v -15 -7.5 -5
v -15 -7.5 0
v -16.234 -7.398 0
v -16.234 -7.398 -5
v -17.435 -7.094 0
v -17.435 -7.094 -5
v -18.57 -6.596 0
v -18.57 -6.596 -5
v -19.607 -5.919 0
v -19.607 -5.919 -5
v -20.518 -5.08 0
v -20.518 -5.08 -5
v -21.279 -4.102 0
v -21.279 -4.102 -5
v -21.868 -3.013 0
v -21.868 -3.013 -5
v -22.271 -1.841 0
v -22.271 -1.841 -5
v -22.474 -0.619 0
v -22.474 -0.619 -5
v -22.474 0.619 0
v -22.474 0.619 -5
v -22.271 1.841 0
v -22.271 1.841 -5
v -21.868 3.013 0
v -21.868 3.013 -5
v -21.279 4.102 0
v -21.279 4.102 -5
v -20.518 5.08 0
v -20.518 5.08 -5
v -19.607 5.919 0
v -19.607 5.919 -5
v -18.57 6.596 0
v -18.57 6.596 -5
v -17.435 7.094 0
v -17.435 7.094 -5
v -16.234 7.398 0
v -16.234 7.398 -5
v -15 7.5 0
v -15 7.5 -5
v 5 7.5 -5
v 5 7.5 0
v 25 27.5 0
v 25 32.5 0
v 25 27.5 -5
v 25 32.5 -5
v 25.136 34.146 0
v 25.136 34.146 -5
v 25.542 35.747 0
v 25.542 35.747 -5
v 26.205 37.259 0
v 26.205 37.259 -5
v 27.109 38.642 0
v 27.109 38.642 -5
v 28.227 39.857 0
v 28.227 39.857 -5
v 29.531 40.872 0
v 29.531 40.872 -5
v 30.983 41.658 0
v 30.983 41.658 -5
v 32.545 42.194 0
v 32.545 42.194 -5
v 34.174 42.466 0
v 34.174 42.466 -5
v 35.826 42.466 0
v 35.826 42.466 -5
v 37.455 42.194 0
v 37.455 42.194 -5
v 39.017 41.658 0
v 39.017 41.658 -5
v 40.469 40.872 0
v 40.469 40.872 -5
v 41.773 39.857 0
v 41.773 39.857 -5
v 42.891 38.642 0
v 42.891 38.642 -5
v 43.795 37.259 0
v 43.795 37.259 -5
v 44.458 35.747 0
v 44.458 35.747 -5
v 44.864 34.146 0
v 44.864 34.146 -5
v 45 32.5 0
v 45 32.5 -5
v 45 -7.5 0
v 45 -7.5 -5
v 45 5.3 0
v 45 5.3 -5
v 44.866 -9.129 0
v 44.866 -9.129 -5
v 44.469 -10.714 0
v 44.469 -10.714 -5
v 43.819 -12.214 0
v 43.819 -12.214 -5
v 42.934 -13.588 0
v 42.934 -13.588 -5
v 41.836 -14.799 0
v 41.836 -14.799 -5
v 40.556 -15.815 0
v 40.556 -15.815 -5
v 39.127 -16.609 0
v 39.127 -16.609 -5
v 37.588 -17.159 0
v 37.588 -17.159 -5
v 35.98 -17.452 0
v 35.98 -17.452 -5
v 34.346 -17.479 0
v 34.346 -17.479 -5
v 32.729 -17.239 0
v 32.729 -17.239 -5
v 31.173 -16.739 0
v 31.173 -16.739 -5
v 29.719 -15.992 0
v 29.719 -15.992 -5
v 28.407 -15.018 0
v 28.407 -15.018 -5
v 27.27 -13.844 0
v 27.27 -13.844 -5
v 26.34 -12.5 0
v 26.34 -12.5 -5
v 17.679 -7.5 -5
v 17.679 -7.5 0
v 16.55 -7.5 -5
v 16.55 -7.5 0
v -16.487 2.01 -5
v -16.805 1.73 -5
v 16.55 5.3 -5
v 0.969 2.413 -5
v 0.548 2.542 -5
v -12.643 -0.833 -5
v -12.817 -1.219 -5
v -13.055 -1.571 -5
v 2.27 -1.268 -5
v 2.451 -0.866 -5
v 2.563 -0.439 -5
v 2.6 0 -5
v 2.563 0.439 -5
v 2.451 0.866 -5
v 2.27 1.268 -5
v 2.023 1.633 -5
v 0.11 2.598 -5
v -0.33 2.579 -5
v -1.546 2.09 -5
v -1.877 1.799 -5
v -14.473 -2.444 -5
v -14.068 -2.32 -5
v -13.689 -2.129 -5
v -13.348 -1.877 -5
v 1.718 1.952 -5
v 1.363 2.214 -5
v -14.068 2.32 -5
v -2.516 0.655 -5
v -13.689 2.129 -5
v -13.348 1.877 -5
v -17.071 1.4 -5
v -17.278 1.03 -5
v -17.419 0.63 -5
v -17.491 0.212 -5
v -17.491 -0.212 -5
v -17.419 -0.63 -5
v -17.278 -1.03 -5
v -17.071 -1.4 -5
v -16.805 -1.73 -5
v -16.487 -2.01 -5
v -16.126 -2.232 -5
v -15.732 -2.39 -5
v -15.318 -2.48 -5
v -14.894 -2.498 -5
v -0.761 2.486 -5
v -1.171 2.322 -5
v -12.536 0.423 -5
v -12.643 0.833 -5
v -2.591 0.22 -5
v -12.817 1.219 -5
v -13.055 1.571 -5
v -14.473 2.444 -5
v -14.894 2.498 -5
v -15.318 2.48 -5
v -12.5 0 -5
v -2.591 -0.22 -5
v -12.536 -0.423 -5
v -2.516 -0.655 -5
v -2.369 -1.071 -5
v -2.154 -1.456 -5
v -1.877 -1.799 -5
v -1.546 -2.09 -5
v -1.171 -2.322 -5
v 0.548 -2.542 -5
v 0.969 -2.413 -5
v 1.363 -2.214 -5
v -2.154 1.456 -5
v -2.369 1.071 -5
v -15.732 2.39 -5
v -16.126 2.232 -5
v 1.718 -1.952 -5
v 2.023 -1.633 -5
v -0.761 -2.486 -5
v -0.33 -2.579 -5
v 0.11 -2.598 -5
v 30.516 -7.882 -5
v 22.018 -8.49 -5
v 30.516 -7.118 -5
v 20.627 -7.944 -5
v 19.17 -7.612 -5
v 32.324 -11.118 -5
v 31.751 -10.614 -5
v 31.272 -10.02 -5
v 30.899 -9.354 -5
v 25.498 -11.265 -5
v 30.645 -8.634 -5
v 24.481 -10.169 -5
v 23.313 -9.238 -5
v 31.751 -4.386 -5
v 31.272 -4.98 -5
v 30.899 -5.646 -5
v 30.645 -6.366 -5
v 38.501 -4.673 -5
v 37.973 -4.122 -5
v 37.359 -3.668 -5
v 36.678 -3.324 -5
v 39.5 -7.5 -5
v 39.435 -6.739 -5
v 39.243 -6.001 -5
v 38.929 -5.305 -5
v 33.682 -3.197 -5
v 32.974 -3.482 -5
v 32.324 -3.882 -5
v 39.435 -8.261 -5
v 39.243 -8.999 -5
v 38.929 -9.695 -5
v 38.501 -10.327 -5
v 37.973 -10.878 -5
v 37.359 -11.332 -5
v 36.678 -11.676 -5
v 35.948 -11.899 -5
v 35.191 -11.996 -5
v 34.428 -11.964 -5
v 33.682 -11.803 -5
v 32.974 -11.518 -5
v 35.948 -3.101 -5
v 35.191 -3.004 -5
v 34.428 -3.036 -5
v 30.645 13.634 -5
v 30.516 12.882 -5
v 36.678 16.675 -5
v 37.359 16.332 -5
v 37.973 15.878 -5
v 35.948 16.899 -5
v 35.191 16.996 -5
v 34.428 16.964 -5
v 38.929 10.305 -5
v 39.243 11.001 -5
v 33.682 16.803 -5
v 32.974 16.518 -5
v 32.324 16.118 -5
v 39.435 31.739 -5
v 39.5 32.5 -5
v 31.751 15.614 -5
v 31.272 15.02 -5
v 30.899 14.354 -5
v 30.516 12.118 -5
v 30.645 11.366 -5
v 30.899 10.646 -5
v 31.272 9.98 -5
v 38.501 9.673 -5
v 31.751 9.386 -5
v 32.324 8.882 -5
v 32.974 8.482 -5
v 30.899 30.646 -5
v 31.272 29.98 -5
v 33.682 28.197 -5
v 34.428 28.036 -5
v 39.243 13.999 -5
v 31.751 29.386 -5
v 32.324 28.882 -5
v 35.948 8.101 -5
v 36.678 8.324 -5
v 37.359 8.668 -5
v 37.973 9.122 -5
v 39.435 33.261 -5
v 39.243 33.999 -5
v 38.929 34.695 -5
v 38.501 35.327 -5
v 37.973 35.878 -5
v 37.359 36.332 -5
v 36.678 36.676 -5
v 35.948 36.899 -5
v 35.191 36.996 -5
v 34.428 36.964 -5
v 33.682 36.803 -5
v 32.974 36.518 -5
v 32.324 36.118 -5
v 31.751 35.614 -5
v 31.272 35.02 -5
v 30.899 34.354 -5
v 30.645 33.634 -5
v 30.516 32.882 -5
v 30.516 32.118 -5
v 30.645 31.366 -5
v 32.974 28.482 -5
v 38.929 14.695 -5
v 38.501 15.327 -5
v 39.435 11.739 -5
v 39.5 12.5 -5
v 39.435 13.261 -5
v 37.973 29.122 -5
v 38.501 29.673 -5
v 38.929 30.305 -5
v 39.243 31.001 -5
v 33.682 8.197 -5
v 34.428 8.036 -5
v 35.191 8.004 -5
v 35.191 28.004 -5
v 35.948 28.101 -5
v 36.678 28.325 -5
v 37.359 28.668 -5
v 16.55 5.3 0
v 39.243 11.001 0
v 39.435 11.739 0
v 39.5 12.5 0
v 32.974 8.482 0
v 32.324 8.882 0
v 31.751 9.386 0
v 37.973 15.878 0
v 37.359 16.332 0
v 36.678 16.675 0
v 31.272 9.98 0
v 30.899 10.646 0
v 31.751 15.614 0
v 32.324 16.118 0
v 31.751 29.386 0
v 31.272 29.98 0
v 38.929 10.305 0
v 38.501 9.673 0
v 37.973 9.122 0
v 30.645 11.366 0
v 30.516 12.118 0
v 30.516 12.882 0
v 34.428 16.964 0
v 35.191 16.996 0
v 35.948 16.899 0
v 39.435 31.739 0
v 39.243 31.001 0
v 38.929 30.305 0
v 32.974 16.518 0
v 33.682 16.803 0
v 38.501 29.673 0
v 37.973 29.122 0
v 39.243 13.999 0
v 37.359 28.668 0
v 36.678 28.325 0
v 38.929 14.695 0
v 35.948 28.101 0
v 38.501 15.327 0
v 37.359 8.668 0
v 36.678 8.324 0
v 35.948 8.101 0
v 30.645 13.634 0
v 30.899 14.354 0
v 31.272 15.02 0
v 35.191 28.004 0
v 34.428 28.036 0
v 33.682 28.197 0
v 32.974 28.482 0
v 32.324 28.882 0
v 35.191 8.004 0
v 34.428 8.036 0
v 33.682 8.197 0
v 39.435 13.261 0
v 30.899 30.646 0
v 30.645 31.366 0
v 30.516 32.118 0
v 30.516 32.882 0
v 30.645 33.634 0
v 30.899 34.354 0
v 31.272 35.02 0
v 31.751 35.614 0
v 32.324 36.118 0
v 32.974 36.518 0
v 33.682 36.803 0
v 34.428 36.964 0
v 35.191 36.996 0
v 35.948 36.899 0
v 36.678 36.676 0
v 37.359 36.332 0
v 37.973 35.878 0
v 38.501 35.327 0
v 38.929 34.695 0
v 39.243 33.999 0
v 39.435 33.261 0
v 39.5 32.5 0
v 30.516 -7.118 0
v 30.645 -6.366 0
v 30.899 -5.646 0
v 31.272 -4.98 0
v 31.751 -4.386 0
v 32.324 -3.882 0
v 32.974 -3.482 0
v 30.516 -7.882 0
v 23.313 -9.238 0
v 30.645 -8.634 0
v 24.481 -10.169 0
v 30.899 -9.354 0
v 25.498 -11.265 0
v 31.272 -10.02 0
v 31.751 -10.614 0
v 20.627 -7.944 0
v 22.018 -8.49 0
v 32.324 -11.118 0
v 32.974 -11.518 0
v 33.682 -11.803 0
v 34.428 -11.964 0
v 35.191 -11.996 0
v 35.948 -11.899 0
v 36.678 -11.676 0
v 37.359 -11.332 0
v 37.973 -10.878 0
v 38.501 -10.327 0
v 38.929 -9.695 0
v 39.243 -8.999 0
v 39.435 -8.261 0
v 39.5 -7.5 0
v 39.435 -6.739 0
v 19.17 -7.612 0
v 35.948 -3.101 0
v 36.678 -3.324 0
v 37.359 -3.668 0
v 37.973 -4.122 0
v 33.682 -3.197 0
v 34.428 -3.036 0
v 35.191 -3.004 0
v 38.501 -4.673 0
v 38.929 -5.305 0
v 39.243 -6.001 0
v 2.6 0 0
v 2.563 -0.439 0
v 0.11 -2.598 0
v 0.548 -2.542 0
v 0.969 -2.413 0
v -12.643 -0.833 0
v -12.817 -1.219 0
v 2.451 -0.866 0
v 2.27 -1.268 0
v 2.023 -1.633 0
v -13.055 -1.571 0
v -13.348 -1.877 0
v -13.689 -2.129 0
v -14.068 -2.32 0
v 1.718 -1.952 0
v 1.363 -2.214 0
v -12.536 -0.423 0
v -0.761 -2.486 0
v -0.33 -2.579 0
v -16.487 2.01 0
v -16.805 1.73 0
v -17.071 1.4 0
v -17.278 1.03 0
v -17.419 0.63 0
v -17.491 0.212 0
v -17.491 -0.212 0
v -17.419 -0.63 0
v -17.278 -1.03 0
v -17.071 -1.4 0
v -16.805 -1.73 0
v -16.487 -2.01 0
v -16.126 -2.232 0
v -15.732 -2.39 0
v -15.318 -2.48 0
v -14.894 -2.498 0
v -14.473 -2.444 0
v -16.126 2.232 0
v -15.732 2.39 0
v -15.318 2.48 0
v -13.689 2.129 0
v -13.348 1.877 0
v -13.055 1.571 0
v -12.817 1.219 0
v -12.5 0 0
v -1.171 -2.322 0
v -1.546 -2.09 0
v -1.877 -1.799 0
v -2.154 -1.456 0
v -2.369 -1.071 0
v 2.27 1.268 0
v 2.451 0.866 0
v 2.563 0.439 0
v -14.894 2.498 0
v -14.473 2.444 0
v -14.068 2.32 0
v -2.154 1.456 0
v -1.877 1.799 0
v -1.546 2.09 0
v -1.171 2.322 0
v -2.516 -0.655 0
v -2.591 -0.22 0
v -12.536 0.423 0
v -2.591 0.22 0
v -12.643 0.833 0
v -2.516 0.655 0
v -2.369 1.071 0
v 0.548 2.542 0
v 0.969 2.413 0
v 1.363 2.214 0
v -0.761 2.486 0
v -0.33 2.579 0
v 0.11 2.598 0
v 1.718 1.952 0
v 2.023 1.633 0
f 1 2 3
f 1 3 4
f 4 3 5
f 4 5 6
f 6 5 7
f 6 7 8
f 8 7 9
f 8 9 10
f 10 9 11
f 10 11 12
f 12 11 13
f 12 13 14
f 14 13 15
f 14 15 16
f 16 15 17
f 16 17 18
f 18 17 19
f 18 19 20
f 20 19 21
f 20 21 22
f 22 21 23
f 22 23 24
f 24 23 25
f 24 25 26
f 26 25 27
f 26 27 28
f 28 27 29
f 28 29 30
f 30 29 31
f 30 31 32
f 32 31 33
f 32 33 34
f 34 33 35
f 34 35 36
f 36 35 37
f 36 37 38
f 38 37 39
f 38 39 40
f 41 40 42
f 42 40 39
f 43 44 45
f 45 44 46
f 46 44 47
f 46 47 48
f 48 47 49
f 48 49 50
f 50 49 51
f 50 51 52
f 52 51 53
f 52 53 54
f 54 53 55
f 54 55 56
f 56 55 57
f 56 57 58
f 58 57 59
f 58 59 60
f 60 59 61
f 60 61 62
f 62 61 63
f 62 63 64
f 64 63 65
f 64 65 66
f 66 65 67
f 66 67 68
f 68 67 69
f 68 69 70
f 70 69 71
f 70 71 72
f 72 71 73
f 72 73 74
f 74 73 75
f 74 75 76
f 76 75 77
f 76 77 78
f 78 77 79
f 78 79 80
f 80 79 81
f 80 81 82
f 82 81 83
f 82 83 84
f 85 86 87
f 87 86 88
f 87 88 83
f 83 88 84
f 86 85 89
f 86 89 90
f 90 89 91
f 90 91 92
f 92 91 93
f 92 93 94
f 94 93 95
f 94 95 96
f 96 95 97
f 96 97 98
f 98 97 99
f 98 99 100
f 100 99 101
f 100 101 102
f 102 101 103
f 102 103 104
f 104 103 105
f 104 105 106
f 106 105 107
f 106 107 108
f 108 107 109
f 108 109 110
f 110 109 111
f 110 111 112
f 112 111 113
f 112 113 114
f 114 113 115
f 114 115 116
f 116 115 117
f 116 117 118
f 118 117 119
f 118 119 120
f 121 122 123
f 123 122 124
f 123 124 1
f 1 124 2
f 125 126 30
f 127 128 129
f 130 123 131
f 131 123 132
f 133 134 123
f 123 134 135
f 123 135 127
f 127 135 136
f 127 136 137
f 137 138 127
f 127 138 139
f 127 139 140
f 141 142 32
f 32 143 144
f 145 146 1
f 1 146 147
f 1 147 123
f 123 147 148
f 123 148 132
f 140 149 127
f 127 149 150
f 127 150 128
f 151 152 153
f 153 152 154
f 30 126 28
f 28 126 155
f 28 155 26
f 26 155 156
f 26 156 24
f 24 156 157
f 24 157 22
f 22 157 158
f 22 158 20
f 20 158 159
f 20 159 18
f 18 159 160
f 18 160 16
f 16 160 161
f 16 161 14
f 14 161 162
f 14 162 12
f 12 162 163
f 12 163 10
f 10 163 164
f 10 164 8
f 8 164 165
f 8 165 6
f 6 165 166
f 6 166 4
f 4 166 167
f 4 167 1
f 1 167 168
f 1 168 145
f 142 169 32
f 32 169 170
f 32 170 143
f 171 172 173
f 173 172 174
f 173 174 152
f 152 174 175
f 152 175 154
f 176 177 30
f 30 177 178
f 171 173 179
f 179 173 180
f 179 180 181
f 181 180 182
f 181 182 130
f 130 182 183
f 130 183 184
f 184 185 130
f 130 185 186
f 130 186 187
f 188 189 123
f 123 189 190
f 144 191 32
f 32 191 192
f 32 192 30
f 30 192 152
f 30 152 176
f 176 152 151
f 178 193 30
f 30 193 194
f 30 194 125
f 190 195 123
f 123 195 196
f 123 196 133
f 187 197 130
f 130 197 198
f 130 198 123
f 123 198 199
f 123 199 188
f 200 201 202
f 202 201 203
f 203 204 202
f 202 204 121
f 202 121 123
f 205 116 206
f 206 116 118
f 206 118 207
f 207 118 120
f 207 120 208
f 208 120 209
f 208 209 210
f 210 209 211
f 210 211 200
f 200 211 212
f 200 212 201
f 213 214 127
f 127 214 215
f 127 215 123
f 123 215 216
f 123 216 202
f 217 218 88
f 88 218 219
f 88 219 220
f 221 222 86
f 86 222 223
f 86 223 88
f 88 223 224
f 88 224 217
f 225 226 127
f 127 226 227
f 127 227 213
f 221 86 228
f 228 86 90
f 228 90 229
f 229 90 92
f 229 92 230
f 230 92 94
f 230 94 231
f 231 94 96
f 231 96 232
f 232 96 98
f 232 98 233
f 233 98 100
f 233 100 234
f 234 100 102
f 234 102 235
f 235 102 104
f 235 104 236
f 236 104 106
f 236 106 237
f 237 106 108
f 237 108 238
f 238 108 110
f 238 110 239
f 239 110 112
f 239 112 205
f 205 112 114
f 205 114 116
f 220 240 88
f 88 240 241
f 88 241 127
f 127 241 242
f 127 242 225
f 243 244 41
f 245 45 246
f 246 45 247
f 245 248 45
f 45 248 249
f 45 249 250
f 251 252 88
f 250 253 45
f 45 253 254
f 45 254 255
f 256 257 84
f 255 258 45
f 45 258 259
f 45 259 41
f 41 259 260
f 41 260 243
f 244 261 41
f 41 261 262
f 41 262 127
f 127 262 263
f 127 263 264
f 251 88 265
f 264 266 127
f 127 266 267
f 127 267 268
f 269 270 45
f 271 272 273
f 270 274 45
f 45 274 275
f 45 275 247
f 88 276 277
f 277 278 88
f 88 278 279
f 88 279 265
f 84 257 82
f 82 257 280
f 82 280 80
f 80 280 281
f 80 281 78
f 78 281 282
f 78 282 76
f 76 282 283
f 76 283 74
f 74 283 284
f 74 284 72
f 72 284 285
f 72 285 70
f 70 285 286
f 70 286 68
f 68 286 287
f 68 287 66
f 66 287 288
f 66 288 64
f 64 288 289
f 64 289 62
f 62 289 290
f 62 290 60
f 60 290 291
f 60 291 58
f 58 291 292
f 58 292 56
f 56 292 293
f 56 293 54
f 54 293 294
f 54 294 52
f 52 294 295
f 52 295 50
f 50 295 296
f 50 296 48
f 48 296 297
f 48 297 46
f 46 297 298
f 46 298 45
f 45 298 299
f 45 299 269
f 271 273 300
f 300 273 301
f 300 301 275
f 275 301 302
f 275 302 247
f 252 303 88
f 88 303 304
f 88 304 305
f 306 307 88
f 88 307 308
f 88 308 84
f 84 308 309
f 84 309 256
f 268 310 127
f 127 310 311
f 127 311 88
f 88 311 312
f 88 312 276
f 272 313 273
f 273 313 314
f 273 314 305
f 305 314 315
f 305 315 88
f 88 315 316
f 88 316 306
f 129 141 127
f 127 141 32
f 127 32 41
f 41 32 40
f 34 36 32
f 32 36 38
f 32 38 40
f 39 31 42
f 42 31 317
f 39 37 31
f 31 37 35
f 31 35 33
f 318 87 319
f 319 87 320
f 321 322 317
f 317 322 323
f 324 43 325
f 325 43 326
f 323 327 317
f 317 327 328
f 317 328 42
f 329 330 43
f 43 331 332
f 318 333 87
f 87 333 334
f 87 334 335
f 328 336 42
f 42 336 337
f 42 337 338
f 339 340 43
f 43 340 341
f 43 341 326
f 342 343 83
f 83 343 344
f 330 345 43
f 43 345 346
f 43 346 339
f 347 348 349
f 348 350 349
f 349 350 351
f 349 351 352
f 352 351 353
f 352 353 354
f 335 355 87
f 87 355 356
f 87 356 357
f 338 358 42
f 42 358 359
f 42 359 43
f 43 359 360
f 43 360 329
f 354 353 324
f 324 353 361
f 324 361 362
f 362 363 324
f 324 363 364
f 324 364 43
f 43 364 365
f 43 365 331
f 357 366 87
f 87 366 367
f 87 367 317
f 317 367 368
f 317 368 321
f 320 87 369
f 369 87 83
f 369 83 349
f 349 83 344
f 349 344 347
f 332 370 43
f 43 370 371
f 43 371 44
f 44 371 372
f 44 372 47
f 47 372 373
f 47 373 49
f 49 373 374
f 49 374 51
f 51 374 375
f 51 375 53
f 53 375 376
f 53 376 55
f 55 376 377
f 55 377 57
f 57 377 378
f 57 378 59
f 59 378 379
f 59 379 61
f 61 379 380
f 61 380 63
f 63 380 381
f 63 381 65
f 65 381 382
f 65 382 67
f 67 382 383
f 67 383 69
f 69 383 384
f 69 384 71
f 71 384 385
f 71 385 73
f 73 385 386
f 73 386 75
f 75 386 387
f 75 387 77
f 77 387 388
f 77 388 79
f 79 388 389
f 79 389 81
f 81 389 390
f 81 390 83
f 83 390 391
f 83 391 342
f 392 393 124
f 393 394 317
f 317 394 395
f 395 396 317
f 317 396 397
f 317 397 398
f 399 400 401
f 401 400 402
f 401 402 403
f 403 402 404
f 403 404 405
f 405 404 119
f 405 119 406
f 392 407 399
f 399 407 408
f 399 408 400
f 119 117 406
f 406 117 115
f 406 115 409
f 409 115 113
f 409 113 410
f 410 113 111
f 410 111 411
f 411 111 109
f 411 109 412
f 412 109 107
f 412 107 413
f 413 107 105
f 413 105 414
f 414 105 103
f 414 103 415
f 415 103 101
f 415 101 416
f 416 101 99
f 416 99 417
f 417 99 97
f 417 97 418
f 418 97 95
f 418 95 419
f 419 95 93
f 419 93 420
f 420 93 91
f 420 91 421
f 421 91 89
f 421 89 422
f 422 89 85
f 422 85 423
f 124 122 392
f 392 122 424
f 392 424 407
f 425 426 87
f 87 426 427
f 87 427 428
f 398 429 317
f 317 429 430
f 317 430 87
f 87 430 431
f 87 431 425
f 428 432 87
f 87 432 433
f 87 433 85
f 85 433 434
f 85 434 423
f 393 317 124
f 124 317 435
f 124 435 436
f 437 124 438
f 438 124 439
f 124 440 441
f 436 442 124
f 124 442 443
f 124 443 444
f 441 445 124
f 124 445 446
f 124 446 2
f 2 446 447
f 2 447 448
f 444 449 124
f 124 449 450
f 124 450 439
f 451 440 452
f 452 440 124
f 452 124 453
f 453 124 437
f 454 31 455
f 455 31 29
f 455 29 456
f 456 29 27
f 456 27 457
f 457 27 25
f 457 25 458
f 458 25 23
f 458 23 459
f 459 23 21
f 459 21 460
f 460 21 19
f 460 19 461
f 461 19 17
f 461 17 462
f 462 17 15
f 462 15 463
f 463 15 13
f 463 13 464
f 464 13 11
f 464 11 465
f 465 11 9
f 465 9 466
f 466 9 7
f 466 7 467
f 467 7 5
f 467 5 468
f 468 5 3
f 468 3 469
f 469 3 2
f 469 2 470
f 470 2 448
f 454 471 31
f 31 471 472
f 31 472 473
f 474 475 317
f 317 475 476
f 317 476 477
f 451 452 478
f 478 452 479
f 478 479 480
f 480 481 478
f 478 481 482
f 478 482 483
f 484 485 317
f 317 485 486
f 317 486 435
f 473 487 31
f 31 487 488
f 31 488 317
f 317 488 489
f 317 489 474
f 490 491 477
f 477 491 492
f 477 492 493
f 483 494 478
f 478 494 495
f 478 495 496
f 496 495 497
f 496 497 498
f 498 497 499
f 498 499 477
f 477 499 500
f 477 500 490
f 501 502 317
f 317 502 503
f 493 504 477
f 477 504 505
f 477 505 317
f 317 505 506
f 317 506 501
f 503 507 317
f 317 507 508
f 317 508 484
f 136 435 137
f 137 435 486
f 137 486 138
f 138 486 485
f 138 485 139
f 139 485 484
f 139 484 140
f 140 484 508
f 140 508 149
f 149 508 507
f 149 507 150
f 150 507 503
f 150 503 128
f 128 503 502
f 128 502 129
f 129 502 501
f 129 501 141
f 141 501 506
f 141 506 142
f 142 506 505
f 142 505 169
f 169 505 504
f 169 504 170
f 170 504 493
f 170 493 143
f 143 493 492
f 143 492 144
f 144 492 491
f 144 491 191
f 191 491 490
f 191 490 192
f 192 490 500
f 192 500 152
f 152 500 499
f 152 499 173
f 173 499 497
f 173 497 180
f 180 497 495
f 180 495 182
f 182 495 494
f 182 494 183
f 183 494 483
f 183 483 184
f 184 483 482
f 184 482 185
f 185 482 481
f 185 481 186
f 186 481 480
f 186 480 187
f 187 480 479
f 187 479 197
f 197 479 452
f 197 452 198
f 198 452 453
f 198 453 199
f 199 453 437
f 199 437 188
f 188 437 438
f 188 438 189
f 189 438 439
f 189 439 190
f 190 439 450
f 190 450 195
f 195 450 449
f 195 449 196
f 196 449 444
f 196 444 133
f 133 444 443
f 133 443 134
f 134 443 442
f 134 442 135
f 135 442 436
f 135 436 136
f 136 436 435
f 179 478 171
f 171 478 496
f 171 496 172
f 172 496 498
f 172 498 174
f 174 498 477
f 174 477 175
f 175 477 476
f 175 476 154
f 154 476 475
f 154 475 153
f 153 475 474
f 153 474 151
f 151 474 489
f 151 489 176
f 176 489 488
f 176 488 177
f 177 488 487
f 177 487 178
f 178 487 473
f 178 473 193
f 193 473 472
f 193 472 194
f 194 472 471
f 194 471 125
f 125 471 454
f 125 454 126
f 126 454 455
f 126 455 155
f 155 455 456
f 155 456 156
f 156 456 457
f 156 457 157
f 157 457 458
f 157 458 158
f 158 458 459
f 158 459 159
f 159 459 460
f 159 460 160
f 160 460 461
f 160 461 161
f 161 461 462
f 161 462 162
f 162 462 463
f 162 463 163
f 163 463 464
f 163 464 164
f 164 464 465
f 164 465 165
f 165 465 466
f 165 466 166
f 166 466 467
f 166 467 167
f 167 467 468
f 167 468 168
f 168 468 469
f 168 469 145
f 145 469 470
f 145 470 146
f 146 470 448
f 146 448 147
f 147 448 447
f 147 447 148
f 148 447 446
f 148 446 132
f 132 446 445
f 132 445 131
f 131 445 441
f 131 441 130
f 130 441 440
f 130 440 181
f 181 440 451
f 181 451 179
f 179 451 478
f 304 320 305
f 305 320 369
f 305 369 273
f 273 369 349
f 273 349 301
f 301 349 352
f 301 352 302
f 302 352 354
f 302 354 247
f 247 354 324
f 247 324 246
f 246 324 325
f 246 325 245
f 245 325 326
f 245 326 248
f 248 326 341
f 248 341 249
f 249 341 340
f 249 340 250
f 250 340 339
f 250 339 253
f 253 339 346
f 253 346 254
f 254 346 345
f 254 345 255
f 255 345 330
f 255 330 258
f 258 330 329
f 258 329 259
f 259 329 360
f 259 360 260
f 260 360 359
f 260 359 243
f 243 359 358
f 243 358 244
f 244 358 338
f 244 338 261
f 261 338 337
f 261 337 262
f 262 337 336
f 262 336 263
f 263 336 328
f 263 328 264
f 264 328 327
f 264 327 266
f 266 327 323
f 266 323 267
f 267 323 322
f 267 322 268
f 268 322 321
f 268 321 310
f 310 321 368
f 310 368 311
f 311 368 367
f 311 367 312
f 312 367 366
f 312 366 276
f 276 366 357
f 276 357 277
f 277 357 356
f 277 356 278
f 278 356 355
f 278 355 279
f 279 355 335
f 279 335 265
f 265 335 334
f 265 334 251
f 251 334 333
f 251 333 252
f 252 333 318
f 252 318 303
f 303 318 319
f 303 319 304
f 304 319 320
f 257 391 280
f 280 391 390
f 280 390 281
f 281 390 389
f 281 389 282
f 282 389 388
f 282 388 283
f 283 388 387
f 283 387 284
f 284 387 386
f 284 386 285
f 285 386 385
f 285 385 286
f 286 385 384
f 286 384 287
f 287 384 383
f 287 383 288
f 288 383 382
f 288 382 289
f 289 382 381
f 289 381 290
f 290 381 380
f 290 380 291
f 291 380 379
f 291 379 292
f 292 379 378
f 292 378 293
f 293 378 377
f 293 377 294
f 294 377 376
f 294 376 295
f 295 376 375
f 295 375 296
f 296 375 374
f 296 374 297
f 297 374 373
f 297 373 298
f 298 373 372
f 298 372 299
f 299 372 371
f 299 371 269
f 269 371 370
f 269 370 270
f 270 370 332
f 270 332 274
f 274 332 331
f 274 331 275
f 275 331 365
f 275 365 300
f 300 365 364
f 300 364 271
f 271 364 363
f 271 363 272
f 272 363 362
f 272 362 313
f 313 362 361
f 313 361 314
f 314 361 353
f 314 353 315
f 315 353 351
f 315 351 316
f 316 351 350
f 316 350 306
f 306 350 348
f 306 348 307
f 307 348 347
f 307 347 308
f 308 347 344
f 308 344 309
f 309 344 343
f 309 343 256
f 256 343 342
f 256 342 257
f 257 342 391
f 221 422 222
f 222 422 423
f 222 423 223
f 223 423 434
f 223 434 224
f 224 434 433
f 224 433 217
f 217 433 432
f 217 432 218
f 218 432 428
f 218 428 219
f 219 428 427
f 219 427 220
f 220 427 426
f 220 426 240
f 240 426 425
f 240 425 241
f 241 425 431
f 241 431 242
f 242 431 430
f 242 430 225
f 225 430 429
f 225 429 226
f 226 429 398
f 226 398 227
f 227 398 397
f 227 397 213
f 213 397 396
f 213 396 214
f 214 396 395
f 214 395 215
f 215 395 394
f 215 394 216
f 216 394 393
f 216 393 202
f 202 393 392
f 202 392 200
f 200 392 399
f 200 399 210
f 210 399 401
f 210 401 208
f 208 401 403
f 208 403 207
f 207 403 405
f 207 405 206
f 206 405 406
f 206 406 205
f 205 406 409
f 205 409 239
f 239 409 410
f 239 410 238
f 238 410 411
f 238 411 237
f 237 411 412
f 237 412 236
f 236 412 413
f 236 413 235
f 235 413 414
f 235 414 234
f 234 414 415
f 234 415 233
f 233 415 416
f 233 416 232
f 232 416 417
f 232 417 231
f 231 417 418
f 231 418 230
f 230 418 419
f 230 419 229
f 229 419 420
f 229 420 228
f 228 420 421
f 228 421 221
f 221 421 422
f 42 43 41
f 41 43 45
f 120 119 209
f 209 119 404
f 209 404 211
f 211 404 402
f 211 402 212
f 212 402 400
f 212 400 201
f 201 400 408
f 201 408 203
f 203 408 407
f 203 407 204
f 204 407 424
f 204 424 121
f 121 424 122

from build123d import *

# Parameters (mm, degrees)
SKETCH_1_R          = 2.6
SKETCH_1_R_2        = 2.5
EXTRUDE_1_DEPTH     = 5
SKETCH_2_R          = 4.5
CUT_EXTRUDE_1_DEPTH = 10
CHAMFER_1_SIZE      = 20
FILLET_1_R          = 10


with BuildPart() as part:
    # 草图1 → 凸台-拉伸1 (new body)
    with BuildSketch(Plane.XY):
        with BuildLine():
            Line((-15, 7.5), (0, 7.5))
            Line((0, 7.5), (15, 7.5))
            Line((15, 7.5), (25, 7.5))
            Line((25, 7.5), (25, 32.5))
            ThreePointArc((25, 32.5), (35, 42.5), (45, 32.5))
            Line((45, 32.5), (45, -7.5))
            ThreePointArc((45, -7.5), (35, -17.5), (25, -7.5))
            Line((25, -7.5), (15, -7.5))
            Line((15, -7.5), (0, -7.5))
            Line((0, -7.5), (-15, -7.5))
            ThreePointArc((-15, -7.5), (-22.5, 0), (-15, 7.5))
        make_face()
        Circle(SKETCH_1_R, mode=Mode.SUBTRACT)
        with Locations((-15, 0)):
            Circle(SKETCH_1_R_2, mode=Mode.SUBTRACT)
    extrude(amount=-EXTRUDE_1_DEPTH)

    # 草图2 → 切除-拉伸1 (cut)
    with BuildSketch(Plane.XY):
        with Locations((35, -7.5)):
            Circle(SKETCH_2_R)
        with Locations((35, 32.5)):
            Circle(SKETCH_2_R)
        with Locations((35, 12.5)):
            Circle(SKETCH_2_R)
    extrude(amount=-CUT_EXTRUDE_1_DEPTH, mode=Mode.SUBTRACT)

    # 倒角1
    chamfer_1_edges = [part.edges().sort_by_distance(p)[0] for p in [
        (25, 7.5, -2.5),
    ]]
    chamfer(chamfer_1_edges, length=CHAMFER_1_SIZE)

    # 圆角1
    fillet_1_edges = [part.edges().sort_by_distance(p)[0] for p in [
        (25, -7.5, -2.5),
    ]]
    fillet(fillet_1_edges, radius=FILLET_1_R)


solid = part.part
